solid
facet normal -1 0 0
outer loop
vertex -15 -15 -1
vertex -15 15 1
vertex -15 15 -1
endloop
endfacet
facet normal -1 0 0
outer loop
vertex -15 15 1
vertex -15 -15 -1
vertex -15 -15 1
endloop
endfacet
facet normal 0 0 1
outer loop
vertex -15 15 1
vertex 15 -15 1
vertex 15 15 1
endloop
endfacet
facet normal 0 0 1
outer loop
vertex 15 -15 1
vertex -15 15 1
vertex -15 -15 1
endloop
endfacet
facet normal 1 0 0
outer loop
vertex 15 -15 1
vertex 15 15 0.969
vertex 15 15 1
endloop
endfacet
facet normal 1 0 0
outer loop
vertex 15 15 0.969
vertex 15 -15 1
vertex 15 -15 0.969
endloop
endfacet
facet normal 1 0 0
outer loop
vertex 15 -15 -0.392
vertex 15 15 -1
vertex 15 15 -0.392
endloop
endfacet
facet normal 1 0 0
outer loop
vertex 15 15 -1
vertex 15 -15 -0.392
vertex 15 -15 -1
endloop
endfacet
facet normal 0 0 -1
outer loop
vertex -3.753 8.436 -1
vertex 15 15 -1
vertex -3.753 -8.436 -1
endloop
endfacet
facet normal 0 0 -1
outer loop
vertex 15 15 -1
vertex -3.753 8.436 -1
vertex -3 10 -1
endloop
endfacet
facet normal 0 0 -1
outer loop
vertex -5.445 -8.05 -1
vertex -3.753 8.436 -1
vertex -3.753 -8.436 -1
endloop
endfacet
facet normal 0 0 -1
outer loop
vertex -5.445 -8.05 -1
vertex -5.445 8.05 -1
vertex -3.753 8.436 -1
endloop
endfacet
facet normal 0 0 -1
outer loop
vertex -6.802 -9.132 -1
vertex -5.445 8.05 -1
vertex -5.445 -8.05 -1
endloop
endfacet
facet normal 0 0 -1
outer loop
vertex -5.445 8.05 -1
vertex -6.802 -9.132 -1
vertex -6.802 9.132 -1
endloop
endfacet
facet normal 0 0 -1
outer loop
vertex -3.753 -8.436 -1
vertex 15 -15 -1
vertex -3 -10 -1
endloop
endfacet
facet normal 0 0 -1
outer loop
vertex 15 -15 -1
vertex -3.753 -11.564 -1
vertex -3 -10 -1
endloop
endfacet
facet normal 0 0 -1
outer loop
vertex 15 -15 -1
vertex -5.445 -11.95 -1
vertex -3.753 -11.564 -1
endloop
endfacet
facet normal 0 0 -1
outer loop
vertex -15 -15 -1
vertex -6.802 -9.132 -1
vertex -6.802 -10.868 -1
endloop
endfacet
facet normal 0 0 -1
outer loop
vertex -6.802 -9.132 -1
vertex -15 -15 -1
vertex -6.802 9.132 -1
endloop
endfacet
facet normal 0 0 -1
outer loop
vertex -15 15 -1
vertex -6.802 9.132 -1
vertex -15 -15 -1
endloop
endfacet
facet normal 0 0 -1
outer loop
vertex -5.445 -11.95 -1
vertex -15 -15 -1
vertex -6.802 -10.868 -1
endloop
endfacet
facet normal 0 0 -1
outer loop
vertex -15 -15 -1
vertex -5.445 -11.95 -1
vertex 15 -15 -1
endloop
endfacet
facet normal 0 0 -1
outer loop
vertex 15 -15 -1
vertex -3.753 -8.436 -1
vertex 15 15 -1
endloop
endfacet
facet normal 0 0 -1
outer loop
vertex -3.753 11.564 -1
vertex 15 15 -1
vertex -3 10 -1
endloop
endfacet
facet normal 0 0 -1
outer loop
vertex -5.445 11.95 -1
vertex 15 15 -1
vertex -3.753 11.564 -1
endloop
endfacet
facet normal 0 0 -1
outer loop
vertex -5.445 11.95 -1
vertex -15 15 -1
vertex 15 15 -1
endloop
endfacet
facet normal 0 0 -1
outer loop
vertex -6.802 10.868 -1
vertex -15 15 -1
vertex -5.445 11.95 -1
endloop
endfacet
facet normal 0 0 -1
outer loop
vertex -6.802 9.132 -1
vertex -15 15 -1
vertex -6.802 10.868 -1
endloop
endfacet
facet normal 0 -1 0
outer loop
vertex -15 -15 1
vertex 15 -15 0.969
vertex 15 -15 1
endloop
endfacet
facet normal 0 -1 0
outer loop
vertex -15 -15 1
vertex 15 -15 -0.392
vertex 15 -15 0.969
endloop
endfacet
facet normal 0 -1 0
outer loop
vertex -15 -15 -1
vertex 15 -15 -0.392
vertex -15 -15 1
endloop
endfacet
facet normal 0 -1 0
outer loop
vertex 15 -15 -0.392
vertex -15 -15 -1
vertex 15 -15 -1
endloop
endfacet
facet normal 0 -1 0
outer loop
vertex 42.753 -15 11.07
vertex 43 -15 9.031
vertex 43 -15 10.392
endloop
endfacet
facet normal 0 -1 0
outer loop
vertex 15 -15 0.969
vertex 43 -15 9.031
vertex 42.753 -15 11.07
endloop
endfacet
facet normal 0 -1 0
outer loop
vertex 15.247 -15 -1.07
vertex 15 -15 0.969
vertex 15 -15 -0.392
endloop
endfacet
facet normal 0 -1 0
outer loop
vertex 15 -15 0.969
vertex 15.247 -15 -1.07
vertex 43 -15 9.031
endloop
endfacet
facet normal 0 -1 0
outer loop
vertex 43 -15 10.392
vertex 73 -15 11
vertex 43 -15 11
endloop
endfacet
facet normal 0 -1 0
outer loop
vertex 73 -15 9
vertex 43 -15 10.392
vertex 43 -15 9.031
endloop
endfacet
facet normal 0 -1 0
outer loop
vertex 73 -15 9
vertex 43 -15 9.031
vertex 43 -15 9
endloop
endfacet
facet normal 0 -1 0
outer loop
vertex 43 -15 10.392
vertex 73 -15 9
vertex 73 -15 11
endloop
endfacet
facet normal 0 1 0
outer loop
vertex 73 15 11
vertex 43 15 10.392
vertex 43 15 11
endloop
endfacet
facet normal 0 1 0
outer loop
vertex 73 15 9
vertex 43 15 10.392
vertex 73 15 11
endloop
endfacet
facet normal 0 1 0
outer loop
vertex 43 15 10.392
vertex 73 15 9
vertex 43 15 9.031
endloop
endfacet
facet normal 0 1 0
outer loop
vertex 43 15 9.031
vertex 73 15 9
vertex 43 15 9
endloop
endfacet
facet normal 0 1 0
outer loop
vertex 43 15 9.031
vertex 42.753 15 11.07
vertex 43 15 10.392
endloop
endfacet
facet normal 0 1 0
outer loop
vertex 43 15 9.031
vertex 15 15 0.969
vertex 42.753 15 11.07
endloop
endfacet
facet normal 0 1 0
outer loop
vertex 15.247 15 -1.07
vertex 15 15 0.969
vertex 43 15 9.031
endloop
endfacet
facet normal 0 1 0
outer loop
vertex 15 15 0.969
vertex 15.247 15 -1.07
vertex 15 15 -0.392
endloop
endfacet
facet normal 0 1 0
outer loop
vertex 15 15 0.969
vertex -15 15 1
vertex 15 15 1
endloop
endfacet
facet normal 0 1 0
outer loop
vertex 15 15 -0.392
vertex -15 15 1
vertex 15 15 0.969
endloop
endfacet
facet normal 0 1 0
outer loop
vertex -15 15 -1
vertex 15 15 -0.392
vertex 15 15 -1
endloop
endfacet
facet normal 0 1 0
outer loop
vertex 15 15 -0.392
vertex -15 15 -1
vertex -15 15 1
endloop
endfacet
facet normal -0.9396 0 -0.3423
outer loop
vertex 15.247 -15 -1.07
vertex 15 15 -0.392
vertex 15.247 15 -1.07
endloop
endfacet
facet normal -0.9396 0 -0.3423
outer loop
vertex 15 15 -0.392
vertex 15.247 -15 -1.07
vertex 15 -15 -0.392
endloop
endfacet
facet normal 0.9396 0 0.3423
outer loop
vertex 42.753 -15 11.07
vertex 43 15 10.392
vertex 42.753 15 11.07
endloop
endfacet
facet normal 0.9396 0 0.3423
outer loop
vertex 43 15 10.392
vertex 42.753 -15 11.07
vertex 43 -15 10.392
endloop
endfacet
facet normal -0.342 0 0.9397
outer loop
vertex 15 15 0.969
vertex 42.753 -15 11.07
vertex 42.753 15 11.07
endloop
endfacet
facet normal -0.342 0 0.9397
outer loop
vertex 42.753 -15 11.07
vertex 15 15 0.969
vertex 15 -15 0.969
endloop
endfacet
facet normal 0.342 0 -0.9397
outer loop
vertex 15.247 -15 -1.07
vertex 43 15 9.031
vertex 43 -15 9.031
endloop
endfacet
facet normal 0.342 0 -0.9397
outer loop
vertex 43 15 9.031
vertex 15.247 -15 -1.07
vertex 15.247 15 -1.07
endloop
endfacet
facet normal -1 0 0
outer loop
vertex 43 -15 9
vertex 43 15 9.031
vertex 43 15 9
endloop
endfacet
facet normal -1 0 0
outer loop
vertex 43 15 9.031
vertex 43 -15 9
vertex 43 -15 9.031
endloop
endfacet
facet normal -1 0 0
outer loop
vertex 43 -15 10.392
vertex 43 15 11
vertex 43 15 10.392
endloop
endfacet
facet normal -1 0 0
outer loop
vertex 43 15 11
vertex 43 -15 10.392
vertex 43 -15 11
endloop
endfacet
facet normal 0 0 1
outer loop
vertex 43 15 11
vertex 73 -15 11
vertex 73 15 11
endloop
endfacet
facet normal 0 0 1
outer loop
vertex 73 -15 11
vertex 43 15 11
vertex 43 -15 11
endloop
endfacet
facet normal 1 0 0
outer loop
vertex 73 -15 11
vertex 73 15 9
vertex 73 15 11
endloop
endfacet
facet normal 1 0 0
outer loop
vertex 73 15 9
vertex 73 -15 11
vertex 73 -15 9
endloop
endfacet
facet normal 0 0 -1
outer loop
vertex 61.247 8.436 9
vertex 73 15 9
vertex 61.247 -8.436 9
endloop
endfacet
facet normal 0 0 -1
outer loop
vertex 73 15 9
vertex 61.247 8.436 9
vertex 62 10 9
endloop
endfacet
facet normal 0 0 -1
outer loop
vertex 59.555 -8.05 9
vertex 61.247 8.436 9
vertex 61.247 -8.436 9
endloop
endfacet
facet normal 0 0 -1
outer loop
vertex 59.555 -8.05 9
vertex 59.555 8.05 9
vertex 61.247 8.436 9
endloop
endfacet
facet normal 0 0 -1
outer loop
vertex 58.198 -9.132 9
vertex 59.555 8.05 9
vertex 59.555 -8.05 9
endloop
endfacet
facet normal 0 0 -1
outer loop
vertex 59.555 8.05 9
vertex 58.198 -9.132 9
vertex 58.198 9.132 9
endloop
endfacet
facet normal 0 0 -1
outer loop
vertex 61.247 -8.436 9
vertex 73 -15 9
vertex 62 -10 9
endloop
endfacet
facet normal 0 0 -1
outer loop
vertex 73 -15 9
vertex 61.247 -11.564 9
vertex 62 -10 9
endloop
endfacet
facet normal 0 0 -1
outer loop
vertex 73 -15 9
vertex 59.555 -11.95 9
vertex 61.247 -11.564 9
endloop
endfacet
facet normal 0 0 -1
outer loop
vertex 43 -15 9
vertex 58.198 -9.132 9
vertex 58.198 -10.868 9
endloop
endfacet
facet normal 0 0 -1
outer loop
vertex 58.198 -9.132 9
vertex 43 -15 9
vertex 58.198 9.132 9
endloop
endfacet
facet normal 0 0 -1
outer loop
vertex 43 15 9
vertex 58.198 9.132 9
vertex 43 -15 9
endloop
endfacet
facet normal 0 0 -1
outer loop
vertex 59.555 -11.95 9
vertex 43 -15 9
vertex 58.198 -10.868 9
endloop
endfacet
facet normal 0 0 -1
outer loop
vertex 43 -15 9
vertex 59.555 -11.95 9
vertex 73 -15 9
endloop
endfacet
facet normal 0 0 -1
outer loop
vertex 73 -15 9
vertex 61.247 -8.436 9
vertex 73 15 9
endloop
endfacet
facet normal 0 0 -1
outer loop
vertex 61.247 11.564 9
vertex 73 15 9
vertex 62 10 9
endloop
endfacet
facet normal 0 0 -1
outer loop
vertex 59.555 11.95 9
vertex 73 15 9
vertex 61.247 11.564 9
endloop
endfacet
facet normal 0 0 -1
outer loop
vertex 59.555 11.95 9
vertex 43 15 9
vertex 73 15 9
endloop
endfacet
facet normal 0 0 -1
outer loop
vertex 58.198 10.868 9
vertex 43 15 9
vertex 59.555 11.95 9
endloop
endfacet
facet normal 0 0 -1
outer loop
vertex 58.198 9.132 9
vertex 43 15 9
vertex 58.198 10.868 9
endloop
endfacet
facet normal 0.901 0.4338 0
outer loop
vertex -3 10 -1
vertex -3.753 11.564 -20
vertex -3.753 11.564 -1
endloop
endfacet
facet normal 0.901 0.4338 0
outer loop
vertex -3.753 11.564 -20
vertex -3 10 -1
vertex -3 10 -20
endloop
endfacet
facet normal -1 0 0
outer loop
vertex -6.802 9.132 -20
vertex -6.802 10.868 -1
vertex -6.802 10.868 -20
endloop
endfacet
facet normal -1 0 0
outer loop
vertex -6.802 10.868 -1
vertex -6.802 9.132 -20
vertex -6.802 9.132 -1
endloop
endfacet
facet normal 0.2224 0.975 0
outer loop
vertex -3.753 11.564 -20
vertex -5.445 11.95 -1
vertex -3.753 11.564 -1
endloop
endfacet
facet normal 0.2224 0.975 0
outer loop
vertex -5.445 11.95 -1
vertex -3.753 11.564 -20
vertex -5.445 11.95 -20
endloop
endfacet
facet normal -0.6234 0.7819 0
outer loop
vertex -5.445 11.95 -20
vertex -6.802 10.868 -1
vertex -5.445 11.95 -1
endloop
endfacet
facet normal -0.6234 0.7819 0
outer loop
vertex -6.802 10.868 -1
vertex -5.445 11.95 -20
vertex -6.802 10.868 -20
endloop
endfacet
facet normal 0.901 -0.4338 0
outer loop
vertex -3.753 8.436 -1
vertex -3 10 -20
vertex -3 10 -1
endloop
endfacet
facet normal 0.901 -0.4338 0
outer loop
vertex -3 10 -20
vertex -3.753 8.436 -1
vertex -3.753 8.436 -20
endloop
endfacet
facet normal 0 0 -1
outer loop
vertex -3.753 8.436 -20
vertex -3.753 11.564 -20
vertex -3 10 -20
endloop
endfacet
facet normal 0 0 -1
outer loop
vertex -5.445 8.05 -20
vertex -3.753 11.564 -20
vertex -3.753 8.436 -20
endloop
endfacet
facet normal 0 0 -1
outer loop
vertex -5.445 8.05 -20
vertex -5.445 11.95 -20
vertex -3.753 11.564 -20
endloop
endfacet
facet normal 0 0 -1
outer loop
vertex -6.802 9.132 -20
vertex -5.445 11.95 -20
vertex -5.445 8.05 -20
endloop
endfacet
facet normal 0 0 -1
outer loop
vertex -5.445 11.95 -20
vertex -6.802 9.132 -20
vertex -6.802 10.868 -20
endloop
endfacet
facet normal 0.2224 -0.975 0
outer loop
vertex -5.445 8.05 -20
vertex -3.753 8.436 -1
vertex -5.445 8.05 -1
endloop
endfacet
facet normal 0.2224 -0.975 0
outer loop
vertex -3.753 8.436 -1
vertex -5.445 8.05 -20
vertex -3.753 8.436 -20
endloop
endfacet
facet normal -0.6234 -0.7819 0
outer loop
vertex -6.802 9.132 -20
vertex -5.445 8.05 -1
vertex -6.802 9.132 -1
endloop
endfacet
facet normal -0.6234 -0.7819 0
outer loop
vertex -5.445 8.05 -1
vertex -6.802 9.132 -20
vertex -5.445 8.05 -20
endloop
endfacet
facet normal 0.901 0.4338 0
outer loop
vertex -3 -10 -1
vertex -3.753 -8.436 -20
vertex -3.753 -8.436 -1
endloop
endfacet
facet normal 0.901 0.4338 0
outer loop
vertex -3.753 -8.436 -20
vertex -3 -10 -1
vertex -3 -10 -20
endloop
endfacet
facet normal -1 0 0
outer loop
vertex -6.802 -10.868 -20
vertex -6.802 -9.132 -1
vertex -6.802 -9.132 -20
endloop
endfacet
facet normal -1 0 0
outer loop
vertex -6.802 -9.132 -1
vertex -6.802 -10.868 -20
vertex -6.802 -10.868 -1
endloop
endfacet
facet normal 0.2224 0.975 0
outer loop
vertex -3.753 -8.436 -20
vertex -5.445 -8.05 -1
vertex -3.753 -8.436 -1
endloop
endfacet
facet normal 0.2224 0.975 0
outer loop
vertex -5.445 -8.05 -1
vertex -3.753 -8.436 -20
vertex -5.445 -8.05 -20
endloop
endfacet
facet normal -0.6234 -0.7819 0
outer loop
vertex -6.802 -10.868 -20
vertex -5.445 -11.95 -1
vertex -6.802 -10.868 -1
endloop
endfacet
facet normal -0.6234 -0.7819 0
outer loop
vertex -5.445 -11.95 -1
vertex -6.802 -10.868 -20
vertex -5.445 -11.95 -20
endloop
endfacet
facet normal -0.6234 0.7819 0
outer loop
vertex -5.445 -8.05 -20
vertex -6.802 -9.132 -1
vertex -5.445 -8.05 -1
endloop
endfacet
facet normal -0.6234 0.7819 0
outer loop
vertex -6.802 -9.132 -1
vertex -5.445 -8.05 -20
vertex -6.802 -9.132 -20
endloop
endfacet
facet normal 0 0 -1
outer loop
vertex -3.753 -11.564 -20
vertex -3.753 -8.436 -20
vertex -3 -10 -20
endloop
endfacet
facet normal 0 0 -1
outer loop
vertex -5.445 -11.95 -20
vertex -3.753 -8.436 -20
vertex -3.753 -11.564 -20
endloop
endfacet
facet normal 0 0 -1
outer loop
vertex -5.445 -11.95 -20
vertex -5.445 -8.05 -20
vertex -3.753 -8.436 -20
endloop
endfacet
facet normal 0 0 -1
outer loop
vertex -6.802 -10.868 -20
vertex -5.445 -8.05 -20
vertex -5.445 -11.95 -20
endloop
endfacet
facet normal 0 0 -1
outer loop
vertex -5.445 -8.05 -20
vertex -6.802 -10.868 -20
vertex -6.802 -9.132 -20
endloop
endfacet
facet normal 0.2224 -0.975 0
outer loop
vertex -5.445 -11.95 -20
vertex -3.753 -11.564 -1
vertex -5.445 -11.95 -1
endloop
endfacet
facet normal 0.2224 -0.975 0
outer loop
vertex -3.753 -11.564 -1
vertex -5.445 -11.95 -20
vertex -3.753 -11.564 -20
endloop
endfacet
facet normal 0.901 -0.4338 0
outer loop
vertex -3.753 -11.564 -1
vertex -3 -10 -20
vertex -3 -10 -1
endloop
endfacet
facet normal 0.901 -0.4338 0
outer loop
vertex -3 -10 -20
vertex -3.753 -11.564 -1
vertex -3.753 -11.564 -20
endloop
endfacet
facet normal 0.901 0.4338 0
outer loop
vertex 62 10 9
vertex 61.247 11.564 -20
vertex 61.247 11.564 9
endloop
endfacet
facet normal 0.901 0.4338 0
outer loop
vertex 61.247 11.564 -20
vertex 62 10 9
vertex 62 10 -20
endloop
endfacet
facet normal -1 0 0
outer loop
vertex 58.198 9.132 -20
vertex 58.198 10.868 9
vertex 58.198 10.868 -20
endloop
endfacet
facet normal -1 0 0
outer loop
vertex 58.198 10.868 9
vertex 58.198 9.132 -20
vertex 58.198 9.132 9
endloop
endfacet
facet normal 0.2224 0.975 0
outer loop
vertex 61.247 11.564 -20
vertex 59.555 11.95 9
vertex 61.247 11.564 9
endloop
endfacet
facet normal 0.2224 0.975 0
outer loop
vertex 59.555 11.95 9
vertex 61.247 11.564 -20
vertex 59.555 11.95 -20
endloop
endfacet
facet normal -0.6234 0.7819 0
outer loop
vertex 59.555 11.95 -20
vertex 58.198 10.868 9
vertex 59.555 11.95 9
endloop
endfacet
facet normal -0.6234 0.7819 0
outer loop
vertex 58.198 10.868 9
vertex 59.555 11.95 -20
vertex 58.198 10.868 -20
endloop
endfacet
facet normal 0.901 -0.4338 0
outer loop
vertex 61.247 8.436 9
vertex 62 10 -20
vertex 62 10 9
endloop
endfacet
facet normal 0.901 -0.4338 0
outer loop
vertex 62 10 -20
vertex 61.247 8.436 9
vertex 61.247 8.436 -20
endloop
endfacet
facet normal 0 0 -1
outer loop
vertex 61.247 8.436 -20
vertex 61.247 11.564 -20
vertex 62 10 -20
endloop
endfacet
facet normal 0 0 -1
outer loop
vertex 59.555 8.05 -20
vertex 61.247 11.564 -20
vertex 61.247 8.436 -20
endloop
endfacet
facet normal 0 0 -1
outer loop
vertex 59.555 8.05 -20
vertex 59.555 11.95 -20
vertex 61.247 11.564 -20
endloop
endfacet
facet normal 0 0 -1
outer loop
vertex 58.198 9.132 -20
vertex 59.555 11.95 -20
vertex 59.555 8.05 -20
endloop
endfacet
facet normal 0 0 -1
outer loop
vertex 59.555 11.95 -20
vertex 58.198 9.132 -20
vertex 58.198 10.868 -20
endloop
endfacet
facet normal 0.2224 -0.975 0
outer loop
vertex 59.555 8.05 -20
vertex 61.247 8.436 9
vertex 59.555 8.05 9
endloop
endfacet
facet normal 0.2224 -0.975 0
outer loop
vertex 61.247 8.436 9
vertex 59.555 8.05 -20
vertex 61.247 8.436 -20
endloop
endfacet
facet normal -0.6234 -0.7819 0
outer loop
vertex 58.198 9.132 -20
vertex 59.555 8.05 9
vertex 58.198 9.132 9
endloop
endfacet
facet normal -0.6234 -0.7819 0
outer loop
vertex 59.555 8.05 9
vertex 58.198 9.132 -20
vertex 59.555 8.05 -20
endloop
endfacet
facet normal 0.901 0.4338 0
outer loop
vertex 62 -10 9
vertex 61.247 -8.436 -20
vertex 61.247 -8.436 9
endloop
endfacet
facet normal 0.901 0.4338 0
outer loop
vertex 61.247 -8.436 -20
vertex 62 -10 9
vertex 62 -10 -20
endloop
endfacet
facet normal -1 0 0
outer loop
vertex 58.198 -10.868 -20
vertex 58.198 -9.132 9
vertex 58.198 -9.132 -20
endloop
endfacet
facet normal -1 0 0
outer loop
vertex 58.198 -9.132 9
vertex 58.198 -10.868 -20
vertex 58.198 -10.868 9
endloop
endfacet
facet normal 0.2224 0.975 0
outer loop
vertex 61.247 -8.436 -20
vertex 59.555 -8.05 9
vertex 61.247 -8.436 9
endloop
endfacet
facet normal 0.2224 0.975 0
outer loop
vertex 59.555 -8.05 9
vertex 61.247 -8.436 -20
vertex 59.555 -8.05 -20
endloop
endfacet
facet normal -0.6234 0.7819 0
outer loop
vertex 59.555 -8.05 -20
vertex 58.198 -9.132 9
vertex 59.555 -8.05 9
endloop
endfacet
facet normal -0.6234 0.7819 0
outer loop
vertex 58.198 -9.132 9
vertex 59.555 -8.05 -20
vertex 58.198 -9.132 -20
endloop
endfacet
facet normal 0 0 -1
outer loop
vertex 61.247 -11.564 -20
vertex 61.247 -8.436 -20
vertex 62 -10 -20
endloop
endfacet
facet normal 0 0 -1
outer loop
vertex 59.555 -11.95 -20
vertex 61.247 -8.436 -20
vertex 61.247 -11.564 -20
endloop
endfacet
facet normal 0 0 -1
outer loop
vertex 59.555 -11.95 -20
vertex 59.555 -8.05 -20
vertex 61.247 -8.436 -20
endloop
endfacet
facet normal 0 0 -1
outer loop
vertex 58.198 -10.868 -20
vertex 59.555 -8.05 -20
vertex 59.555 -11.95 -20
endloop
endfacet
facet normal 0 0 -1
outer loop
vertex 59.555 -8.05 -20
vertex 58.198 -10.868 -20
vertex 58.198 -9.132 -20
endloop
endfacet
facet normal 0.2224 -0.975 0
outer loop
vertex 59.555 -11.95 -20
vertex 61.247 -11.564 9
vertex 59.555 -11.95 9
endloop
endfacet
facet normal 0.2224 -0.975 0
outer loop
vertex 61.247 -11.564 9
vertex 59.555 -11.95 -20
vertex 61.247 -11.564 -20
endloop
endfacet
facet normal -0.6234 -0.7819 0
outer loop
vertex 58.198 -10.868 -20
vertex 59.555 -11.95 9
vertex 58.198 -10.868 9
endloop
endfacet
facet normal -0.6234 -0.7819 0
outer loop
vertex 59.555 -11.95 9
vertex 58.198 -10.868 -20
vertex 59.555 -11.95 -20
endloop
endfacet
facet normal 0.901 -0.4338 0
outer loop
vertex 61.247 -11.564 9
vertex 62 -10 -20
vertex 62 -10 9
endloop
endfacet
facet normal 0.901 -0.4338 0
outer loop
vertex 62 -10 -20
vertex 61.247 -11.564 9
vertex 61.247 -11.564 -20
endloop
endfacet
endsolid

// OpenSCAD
// Massageliege


module Bett() {
    cube([30,30,2],center=true);
}

module Liegeflaeche() {
    Bett();
    translate([29,0,5]) rotate([0,-20,0])Bett();
    translate([58,0,10]) Bett();
    
}

module Bein() {
    cylinder(d=4,h=20, center=true);
}

module Langbein() {
    cylinder(d=4,h=30, center=true);
}

Liegeflaeche();
translate([-5,10,-10]) Bein();
translate([-5,-10,-10]) Bein();
translate([60,10,-5]) Langbein();
translate([60,-10,-5]) Langbein();
